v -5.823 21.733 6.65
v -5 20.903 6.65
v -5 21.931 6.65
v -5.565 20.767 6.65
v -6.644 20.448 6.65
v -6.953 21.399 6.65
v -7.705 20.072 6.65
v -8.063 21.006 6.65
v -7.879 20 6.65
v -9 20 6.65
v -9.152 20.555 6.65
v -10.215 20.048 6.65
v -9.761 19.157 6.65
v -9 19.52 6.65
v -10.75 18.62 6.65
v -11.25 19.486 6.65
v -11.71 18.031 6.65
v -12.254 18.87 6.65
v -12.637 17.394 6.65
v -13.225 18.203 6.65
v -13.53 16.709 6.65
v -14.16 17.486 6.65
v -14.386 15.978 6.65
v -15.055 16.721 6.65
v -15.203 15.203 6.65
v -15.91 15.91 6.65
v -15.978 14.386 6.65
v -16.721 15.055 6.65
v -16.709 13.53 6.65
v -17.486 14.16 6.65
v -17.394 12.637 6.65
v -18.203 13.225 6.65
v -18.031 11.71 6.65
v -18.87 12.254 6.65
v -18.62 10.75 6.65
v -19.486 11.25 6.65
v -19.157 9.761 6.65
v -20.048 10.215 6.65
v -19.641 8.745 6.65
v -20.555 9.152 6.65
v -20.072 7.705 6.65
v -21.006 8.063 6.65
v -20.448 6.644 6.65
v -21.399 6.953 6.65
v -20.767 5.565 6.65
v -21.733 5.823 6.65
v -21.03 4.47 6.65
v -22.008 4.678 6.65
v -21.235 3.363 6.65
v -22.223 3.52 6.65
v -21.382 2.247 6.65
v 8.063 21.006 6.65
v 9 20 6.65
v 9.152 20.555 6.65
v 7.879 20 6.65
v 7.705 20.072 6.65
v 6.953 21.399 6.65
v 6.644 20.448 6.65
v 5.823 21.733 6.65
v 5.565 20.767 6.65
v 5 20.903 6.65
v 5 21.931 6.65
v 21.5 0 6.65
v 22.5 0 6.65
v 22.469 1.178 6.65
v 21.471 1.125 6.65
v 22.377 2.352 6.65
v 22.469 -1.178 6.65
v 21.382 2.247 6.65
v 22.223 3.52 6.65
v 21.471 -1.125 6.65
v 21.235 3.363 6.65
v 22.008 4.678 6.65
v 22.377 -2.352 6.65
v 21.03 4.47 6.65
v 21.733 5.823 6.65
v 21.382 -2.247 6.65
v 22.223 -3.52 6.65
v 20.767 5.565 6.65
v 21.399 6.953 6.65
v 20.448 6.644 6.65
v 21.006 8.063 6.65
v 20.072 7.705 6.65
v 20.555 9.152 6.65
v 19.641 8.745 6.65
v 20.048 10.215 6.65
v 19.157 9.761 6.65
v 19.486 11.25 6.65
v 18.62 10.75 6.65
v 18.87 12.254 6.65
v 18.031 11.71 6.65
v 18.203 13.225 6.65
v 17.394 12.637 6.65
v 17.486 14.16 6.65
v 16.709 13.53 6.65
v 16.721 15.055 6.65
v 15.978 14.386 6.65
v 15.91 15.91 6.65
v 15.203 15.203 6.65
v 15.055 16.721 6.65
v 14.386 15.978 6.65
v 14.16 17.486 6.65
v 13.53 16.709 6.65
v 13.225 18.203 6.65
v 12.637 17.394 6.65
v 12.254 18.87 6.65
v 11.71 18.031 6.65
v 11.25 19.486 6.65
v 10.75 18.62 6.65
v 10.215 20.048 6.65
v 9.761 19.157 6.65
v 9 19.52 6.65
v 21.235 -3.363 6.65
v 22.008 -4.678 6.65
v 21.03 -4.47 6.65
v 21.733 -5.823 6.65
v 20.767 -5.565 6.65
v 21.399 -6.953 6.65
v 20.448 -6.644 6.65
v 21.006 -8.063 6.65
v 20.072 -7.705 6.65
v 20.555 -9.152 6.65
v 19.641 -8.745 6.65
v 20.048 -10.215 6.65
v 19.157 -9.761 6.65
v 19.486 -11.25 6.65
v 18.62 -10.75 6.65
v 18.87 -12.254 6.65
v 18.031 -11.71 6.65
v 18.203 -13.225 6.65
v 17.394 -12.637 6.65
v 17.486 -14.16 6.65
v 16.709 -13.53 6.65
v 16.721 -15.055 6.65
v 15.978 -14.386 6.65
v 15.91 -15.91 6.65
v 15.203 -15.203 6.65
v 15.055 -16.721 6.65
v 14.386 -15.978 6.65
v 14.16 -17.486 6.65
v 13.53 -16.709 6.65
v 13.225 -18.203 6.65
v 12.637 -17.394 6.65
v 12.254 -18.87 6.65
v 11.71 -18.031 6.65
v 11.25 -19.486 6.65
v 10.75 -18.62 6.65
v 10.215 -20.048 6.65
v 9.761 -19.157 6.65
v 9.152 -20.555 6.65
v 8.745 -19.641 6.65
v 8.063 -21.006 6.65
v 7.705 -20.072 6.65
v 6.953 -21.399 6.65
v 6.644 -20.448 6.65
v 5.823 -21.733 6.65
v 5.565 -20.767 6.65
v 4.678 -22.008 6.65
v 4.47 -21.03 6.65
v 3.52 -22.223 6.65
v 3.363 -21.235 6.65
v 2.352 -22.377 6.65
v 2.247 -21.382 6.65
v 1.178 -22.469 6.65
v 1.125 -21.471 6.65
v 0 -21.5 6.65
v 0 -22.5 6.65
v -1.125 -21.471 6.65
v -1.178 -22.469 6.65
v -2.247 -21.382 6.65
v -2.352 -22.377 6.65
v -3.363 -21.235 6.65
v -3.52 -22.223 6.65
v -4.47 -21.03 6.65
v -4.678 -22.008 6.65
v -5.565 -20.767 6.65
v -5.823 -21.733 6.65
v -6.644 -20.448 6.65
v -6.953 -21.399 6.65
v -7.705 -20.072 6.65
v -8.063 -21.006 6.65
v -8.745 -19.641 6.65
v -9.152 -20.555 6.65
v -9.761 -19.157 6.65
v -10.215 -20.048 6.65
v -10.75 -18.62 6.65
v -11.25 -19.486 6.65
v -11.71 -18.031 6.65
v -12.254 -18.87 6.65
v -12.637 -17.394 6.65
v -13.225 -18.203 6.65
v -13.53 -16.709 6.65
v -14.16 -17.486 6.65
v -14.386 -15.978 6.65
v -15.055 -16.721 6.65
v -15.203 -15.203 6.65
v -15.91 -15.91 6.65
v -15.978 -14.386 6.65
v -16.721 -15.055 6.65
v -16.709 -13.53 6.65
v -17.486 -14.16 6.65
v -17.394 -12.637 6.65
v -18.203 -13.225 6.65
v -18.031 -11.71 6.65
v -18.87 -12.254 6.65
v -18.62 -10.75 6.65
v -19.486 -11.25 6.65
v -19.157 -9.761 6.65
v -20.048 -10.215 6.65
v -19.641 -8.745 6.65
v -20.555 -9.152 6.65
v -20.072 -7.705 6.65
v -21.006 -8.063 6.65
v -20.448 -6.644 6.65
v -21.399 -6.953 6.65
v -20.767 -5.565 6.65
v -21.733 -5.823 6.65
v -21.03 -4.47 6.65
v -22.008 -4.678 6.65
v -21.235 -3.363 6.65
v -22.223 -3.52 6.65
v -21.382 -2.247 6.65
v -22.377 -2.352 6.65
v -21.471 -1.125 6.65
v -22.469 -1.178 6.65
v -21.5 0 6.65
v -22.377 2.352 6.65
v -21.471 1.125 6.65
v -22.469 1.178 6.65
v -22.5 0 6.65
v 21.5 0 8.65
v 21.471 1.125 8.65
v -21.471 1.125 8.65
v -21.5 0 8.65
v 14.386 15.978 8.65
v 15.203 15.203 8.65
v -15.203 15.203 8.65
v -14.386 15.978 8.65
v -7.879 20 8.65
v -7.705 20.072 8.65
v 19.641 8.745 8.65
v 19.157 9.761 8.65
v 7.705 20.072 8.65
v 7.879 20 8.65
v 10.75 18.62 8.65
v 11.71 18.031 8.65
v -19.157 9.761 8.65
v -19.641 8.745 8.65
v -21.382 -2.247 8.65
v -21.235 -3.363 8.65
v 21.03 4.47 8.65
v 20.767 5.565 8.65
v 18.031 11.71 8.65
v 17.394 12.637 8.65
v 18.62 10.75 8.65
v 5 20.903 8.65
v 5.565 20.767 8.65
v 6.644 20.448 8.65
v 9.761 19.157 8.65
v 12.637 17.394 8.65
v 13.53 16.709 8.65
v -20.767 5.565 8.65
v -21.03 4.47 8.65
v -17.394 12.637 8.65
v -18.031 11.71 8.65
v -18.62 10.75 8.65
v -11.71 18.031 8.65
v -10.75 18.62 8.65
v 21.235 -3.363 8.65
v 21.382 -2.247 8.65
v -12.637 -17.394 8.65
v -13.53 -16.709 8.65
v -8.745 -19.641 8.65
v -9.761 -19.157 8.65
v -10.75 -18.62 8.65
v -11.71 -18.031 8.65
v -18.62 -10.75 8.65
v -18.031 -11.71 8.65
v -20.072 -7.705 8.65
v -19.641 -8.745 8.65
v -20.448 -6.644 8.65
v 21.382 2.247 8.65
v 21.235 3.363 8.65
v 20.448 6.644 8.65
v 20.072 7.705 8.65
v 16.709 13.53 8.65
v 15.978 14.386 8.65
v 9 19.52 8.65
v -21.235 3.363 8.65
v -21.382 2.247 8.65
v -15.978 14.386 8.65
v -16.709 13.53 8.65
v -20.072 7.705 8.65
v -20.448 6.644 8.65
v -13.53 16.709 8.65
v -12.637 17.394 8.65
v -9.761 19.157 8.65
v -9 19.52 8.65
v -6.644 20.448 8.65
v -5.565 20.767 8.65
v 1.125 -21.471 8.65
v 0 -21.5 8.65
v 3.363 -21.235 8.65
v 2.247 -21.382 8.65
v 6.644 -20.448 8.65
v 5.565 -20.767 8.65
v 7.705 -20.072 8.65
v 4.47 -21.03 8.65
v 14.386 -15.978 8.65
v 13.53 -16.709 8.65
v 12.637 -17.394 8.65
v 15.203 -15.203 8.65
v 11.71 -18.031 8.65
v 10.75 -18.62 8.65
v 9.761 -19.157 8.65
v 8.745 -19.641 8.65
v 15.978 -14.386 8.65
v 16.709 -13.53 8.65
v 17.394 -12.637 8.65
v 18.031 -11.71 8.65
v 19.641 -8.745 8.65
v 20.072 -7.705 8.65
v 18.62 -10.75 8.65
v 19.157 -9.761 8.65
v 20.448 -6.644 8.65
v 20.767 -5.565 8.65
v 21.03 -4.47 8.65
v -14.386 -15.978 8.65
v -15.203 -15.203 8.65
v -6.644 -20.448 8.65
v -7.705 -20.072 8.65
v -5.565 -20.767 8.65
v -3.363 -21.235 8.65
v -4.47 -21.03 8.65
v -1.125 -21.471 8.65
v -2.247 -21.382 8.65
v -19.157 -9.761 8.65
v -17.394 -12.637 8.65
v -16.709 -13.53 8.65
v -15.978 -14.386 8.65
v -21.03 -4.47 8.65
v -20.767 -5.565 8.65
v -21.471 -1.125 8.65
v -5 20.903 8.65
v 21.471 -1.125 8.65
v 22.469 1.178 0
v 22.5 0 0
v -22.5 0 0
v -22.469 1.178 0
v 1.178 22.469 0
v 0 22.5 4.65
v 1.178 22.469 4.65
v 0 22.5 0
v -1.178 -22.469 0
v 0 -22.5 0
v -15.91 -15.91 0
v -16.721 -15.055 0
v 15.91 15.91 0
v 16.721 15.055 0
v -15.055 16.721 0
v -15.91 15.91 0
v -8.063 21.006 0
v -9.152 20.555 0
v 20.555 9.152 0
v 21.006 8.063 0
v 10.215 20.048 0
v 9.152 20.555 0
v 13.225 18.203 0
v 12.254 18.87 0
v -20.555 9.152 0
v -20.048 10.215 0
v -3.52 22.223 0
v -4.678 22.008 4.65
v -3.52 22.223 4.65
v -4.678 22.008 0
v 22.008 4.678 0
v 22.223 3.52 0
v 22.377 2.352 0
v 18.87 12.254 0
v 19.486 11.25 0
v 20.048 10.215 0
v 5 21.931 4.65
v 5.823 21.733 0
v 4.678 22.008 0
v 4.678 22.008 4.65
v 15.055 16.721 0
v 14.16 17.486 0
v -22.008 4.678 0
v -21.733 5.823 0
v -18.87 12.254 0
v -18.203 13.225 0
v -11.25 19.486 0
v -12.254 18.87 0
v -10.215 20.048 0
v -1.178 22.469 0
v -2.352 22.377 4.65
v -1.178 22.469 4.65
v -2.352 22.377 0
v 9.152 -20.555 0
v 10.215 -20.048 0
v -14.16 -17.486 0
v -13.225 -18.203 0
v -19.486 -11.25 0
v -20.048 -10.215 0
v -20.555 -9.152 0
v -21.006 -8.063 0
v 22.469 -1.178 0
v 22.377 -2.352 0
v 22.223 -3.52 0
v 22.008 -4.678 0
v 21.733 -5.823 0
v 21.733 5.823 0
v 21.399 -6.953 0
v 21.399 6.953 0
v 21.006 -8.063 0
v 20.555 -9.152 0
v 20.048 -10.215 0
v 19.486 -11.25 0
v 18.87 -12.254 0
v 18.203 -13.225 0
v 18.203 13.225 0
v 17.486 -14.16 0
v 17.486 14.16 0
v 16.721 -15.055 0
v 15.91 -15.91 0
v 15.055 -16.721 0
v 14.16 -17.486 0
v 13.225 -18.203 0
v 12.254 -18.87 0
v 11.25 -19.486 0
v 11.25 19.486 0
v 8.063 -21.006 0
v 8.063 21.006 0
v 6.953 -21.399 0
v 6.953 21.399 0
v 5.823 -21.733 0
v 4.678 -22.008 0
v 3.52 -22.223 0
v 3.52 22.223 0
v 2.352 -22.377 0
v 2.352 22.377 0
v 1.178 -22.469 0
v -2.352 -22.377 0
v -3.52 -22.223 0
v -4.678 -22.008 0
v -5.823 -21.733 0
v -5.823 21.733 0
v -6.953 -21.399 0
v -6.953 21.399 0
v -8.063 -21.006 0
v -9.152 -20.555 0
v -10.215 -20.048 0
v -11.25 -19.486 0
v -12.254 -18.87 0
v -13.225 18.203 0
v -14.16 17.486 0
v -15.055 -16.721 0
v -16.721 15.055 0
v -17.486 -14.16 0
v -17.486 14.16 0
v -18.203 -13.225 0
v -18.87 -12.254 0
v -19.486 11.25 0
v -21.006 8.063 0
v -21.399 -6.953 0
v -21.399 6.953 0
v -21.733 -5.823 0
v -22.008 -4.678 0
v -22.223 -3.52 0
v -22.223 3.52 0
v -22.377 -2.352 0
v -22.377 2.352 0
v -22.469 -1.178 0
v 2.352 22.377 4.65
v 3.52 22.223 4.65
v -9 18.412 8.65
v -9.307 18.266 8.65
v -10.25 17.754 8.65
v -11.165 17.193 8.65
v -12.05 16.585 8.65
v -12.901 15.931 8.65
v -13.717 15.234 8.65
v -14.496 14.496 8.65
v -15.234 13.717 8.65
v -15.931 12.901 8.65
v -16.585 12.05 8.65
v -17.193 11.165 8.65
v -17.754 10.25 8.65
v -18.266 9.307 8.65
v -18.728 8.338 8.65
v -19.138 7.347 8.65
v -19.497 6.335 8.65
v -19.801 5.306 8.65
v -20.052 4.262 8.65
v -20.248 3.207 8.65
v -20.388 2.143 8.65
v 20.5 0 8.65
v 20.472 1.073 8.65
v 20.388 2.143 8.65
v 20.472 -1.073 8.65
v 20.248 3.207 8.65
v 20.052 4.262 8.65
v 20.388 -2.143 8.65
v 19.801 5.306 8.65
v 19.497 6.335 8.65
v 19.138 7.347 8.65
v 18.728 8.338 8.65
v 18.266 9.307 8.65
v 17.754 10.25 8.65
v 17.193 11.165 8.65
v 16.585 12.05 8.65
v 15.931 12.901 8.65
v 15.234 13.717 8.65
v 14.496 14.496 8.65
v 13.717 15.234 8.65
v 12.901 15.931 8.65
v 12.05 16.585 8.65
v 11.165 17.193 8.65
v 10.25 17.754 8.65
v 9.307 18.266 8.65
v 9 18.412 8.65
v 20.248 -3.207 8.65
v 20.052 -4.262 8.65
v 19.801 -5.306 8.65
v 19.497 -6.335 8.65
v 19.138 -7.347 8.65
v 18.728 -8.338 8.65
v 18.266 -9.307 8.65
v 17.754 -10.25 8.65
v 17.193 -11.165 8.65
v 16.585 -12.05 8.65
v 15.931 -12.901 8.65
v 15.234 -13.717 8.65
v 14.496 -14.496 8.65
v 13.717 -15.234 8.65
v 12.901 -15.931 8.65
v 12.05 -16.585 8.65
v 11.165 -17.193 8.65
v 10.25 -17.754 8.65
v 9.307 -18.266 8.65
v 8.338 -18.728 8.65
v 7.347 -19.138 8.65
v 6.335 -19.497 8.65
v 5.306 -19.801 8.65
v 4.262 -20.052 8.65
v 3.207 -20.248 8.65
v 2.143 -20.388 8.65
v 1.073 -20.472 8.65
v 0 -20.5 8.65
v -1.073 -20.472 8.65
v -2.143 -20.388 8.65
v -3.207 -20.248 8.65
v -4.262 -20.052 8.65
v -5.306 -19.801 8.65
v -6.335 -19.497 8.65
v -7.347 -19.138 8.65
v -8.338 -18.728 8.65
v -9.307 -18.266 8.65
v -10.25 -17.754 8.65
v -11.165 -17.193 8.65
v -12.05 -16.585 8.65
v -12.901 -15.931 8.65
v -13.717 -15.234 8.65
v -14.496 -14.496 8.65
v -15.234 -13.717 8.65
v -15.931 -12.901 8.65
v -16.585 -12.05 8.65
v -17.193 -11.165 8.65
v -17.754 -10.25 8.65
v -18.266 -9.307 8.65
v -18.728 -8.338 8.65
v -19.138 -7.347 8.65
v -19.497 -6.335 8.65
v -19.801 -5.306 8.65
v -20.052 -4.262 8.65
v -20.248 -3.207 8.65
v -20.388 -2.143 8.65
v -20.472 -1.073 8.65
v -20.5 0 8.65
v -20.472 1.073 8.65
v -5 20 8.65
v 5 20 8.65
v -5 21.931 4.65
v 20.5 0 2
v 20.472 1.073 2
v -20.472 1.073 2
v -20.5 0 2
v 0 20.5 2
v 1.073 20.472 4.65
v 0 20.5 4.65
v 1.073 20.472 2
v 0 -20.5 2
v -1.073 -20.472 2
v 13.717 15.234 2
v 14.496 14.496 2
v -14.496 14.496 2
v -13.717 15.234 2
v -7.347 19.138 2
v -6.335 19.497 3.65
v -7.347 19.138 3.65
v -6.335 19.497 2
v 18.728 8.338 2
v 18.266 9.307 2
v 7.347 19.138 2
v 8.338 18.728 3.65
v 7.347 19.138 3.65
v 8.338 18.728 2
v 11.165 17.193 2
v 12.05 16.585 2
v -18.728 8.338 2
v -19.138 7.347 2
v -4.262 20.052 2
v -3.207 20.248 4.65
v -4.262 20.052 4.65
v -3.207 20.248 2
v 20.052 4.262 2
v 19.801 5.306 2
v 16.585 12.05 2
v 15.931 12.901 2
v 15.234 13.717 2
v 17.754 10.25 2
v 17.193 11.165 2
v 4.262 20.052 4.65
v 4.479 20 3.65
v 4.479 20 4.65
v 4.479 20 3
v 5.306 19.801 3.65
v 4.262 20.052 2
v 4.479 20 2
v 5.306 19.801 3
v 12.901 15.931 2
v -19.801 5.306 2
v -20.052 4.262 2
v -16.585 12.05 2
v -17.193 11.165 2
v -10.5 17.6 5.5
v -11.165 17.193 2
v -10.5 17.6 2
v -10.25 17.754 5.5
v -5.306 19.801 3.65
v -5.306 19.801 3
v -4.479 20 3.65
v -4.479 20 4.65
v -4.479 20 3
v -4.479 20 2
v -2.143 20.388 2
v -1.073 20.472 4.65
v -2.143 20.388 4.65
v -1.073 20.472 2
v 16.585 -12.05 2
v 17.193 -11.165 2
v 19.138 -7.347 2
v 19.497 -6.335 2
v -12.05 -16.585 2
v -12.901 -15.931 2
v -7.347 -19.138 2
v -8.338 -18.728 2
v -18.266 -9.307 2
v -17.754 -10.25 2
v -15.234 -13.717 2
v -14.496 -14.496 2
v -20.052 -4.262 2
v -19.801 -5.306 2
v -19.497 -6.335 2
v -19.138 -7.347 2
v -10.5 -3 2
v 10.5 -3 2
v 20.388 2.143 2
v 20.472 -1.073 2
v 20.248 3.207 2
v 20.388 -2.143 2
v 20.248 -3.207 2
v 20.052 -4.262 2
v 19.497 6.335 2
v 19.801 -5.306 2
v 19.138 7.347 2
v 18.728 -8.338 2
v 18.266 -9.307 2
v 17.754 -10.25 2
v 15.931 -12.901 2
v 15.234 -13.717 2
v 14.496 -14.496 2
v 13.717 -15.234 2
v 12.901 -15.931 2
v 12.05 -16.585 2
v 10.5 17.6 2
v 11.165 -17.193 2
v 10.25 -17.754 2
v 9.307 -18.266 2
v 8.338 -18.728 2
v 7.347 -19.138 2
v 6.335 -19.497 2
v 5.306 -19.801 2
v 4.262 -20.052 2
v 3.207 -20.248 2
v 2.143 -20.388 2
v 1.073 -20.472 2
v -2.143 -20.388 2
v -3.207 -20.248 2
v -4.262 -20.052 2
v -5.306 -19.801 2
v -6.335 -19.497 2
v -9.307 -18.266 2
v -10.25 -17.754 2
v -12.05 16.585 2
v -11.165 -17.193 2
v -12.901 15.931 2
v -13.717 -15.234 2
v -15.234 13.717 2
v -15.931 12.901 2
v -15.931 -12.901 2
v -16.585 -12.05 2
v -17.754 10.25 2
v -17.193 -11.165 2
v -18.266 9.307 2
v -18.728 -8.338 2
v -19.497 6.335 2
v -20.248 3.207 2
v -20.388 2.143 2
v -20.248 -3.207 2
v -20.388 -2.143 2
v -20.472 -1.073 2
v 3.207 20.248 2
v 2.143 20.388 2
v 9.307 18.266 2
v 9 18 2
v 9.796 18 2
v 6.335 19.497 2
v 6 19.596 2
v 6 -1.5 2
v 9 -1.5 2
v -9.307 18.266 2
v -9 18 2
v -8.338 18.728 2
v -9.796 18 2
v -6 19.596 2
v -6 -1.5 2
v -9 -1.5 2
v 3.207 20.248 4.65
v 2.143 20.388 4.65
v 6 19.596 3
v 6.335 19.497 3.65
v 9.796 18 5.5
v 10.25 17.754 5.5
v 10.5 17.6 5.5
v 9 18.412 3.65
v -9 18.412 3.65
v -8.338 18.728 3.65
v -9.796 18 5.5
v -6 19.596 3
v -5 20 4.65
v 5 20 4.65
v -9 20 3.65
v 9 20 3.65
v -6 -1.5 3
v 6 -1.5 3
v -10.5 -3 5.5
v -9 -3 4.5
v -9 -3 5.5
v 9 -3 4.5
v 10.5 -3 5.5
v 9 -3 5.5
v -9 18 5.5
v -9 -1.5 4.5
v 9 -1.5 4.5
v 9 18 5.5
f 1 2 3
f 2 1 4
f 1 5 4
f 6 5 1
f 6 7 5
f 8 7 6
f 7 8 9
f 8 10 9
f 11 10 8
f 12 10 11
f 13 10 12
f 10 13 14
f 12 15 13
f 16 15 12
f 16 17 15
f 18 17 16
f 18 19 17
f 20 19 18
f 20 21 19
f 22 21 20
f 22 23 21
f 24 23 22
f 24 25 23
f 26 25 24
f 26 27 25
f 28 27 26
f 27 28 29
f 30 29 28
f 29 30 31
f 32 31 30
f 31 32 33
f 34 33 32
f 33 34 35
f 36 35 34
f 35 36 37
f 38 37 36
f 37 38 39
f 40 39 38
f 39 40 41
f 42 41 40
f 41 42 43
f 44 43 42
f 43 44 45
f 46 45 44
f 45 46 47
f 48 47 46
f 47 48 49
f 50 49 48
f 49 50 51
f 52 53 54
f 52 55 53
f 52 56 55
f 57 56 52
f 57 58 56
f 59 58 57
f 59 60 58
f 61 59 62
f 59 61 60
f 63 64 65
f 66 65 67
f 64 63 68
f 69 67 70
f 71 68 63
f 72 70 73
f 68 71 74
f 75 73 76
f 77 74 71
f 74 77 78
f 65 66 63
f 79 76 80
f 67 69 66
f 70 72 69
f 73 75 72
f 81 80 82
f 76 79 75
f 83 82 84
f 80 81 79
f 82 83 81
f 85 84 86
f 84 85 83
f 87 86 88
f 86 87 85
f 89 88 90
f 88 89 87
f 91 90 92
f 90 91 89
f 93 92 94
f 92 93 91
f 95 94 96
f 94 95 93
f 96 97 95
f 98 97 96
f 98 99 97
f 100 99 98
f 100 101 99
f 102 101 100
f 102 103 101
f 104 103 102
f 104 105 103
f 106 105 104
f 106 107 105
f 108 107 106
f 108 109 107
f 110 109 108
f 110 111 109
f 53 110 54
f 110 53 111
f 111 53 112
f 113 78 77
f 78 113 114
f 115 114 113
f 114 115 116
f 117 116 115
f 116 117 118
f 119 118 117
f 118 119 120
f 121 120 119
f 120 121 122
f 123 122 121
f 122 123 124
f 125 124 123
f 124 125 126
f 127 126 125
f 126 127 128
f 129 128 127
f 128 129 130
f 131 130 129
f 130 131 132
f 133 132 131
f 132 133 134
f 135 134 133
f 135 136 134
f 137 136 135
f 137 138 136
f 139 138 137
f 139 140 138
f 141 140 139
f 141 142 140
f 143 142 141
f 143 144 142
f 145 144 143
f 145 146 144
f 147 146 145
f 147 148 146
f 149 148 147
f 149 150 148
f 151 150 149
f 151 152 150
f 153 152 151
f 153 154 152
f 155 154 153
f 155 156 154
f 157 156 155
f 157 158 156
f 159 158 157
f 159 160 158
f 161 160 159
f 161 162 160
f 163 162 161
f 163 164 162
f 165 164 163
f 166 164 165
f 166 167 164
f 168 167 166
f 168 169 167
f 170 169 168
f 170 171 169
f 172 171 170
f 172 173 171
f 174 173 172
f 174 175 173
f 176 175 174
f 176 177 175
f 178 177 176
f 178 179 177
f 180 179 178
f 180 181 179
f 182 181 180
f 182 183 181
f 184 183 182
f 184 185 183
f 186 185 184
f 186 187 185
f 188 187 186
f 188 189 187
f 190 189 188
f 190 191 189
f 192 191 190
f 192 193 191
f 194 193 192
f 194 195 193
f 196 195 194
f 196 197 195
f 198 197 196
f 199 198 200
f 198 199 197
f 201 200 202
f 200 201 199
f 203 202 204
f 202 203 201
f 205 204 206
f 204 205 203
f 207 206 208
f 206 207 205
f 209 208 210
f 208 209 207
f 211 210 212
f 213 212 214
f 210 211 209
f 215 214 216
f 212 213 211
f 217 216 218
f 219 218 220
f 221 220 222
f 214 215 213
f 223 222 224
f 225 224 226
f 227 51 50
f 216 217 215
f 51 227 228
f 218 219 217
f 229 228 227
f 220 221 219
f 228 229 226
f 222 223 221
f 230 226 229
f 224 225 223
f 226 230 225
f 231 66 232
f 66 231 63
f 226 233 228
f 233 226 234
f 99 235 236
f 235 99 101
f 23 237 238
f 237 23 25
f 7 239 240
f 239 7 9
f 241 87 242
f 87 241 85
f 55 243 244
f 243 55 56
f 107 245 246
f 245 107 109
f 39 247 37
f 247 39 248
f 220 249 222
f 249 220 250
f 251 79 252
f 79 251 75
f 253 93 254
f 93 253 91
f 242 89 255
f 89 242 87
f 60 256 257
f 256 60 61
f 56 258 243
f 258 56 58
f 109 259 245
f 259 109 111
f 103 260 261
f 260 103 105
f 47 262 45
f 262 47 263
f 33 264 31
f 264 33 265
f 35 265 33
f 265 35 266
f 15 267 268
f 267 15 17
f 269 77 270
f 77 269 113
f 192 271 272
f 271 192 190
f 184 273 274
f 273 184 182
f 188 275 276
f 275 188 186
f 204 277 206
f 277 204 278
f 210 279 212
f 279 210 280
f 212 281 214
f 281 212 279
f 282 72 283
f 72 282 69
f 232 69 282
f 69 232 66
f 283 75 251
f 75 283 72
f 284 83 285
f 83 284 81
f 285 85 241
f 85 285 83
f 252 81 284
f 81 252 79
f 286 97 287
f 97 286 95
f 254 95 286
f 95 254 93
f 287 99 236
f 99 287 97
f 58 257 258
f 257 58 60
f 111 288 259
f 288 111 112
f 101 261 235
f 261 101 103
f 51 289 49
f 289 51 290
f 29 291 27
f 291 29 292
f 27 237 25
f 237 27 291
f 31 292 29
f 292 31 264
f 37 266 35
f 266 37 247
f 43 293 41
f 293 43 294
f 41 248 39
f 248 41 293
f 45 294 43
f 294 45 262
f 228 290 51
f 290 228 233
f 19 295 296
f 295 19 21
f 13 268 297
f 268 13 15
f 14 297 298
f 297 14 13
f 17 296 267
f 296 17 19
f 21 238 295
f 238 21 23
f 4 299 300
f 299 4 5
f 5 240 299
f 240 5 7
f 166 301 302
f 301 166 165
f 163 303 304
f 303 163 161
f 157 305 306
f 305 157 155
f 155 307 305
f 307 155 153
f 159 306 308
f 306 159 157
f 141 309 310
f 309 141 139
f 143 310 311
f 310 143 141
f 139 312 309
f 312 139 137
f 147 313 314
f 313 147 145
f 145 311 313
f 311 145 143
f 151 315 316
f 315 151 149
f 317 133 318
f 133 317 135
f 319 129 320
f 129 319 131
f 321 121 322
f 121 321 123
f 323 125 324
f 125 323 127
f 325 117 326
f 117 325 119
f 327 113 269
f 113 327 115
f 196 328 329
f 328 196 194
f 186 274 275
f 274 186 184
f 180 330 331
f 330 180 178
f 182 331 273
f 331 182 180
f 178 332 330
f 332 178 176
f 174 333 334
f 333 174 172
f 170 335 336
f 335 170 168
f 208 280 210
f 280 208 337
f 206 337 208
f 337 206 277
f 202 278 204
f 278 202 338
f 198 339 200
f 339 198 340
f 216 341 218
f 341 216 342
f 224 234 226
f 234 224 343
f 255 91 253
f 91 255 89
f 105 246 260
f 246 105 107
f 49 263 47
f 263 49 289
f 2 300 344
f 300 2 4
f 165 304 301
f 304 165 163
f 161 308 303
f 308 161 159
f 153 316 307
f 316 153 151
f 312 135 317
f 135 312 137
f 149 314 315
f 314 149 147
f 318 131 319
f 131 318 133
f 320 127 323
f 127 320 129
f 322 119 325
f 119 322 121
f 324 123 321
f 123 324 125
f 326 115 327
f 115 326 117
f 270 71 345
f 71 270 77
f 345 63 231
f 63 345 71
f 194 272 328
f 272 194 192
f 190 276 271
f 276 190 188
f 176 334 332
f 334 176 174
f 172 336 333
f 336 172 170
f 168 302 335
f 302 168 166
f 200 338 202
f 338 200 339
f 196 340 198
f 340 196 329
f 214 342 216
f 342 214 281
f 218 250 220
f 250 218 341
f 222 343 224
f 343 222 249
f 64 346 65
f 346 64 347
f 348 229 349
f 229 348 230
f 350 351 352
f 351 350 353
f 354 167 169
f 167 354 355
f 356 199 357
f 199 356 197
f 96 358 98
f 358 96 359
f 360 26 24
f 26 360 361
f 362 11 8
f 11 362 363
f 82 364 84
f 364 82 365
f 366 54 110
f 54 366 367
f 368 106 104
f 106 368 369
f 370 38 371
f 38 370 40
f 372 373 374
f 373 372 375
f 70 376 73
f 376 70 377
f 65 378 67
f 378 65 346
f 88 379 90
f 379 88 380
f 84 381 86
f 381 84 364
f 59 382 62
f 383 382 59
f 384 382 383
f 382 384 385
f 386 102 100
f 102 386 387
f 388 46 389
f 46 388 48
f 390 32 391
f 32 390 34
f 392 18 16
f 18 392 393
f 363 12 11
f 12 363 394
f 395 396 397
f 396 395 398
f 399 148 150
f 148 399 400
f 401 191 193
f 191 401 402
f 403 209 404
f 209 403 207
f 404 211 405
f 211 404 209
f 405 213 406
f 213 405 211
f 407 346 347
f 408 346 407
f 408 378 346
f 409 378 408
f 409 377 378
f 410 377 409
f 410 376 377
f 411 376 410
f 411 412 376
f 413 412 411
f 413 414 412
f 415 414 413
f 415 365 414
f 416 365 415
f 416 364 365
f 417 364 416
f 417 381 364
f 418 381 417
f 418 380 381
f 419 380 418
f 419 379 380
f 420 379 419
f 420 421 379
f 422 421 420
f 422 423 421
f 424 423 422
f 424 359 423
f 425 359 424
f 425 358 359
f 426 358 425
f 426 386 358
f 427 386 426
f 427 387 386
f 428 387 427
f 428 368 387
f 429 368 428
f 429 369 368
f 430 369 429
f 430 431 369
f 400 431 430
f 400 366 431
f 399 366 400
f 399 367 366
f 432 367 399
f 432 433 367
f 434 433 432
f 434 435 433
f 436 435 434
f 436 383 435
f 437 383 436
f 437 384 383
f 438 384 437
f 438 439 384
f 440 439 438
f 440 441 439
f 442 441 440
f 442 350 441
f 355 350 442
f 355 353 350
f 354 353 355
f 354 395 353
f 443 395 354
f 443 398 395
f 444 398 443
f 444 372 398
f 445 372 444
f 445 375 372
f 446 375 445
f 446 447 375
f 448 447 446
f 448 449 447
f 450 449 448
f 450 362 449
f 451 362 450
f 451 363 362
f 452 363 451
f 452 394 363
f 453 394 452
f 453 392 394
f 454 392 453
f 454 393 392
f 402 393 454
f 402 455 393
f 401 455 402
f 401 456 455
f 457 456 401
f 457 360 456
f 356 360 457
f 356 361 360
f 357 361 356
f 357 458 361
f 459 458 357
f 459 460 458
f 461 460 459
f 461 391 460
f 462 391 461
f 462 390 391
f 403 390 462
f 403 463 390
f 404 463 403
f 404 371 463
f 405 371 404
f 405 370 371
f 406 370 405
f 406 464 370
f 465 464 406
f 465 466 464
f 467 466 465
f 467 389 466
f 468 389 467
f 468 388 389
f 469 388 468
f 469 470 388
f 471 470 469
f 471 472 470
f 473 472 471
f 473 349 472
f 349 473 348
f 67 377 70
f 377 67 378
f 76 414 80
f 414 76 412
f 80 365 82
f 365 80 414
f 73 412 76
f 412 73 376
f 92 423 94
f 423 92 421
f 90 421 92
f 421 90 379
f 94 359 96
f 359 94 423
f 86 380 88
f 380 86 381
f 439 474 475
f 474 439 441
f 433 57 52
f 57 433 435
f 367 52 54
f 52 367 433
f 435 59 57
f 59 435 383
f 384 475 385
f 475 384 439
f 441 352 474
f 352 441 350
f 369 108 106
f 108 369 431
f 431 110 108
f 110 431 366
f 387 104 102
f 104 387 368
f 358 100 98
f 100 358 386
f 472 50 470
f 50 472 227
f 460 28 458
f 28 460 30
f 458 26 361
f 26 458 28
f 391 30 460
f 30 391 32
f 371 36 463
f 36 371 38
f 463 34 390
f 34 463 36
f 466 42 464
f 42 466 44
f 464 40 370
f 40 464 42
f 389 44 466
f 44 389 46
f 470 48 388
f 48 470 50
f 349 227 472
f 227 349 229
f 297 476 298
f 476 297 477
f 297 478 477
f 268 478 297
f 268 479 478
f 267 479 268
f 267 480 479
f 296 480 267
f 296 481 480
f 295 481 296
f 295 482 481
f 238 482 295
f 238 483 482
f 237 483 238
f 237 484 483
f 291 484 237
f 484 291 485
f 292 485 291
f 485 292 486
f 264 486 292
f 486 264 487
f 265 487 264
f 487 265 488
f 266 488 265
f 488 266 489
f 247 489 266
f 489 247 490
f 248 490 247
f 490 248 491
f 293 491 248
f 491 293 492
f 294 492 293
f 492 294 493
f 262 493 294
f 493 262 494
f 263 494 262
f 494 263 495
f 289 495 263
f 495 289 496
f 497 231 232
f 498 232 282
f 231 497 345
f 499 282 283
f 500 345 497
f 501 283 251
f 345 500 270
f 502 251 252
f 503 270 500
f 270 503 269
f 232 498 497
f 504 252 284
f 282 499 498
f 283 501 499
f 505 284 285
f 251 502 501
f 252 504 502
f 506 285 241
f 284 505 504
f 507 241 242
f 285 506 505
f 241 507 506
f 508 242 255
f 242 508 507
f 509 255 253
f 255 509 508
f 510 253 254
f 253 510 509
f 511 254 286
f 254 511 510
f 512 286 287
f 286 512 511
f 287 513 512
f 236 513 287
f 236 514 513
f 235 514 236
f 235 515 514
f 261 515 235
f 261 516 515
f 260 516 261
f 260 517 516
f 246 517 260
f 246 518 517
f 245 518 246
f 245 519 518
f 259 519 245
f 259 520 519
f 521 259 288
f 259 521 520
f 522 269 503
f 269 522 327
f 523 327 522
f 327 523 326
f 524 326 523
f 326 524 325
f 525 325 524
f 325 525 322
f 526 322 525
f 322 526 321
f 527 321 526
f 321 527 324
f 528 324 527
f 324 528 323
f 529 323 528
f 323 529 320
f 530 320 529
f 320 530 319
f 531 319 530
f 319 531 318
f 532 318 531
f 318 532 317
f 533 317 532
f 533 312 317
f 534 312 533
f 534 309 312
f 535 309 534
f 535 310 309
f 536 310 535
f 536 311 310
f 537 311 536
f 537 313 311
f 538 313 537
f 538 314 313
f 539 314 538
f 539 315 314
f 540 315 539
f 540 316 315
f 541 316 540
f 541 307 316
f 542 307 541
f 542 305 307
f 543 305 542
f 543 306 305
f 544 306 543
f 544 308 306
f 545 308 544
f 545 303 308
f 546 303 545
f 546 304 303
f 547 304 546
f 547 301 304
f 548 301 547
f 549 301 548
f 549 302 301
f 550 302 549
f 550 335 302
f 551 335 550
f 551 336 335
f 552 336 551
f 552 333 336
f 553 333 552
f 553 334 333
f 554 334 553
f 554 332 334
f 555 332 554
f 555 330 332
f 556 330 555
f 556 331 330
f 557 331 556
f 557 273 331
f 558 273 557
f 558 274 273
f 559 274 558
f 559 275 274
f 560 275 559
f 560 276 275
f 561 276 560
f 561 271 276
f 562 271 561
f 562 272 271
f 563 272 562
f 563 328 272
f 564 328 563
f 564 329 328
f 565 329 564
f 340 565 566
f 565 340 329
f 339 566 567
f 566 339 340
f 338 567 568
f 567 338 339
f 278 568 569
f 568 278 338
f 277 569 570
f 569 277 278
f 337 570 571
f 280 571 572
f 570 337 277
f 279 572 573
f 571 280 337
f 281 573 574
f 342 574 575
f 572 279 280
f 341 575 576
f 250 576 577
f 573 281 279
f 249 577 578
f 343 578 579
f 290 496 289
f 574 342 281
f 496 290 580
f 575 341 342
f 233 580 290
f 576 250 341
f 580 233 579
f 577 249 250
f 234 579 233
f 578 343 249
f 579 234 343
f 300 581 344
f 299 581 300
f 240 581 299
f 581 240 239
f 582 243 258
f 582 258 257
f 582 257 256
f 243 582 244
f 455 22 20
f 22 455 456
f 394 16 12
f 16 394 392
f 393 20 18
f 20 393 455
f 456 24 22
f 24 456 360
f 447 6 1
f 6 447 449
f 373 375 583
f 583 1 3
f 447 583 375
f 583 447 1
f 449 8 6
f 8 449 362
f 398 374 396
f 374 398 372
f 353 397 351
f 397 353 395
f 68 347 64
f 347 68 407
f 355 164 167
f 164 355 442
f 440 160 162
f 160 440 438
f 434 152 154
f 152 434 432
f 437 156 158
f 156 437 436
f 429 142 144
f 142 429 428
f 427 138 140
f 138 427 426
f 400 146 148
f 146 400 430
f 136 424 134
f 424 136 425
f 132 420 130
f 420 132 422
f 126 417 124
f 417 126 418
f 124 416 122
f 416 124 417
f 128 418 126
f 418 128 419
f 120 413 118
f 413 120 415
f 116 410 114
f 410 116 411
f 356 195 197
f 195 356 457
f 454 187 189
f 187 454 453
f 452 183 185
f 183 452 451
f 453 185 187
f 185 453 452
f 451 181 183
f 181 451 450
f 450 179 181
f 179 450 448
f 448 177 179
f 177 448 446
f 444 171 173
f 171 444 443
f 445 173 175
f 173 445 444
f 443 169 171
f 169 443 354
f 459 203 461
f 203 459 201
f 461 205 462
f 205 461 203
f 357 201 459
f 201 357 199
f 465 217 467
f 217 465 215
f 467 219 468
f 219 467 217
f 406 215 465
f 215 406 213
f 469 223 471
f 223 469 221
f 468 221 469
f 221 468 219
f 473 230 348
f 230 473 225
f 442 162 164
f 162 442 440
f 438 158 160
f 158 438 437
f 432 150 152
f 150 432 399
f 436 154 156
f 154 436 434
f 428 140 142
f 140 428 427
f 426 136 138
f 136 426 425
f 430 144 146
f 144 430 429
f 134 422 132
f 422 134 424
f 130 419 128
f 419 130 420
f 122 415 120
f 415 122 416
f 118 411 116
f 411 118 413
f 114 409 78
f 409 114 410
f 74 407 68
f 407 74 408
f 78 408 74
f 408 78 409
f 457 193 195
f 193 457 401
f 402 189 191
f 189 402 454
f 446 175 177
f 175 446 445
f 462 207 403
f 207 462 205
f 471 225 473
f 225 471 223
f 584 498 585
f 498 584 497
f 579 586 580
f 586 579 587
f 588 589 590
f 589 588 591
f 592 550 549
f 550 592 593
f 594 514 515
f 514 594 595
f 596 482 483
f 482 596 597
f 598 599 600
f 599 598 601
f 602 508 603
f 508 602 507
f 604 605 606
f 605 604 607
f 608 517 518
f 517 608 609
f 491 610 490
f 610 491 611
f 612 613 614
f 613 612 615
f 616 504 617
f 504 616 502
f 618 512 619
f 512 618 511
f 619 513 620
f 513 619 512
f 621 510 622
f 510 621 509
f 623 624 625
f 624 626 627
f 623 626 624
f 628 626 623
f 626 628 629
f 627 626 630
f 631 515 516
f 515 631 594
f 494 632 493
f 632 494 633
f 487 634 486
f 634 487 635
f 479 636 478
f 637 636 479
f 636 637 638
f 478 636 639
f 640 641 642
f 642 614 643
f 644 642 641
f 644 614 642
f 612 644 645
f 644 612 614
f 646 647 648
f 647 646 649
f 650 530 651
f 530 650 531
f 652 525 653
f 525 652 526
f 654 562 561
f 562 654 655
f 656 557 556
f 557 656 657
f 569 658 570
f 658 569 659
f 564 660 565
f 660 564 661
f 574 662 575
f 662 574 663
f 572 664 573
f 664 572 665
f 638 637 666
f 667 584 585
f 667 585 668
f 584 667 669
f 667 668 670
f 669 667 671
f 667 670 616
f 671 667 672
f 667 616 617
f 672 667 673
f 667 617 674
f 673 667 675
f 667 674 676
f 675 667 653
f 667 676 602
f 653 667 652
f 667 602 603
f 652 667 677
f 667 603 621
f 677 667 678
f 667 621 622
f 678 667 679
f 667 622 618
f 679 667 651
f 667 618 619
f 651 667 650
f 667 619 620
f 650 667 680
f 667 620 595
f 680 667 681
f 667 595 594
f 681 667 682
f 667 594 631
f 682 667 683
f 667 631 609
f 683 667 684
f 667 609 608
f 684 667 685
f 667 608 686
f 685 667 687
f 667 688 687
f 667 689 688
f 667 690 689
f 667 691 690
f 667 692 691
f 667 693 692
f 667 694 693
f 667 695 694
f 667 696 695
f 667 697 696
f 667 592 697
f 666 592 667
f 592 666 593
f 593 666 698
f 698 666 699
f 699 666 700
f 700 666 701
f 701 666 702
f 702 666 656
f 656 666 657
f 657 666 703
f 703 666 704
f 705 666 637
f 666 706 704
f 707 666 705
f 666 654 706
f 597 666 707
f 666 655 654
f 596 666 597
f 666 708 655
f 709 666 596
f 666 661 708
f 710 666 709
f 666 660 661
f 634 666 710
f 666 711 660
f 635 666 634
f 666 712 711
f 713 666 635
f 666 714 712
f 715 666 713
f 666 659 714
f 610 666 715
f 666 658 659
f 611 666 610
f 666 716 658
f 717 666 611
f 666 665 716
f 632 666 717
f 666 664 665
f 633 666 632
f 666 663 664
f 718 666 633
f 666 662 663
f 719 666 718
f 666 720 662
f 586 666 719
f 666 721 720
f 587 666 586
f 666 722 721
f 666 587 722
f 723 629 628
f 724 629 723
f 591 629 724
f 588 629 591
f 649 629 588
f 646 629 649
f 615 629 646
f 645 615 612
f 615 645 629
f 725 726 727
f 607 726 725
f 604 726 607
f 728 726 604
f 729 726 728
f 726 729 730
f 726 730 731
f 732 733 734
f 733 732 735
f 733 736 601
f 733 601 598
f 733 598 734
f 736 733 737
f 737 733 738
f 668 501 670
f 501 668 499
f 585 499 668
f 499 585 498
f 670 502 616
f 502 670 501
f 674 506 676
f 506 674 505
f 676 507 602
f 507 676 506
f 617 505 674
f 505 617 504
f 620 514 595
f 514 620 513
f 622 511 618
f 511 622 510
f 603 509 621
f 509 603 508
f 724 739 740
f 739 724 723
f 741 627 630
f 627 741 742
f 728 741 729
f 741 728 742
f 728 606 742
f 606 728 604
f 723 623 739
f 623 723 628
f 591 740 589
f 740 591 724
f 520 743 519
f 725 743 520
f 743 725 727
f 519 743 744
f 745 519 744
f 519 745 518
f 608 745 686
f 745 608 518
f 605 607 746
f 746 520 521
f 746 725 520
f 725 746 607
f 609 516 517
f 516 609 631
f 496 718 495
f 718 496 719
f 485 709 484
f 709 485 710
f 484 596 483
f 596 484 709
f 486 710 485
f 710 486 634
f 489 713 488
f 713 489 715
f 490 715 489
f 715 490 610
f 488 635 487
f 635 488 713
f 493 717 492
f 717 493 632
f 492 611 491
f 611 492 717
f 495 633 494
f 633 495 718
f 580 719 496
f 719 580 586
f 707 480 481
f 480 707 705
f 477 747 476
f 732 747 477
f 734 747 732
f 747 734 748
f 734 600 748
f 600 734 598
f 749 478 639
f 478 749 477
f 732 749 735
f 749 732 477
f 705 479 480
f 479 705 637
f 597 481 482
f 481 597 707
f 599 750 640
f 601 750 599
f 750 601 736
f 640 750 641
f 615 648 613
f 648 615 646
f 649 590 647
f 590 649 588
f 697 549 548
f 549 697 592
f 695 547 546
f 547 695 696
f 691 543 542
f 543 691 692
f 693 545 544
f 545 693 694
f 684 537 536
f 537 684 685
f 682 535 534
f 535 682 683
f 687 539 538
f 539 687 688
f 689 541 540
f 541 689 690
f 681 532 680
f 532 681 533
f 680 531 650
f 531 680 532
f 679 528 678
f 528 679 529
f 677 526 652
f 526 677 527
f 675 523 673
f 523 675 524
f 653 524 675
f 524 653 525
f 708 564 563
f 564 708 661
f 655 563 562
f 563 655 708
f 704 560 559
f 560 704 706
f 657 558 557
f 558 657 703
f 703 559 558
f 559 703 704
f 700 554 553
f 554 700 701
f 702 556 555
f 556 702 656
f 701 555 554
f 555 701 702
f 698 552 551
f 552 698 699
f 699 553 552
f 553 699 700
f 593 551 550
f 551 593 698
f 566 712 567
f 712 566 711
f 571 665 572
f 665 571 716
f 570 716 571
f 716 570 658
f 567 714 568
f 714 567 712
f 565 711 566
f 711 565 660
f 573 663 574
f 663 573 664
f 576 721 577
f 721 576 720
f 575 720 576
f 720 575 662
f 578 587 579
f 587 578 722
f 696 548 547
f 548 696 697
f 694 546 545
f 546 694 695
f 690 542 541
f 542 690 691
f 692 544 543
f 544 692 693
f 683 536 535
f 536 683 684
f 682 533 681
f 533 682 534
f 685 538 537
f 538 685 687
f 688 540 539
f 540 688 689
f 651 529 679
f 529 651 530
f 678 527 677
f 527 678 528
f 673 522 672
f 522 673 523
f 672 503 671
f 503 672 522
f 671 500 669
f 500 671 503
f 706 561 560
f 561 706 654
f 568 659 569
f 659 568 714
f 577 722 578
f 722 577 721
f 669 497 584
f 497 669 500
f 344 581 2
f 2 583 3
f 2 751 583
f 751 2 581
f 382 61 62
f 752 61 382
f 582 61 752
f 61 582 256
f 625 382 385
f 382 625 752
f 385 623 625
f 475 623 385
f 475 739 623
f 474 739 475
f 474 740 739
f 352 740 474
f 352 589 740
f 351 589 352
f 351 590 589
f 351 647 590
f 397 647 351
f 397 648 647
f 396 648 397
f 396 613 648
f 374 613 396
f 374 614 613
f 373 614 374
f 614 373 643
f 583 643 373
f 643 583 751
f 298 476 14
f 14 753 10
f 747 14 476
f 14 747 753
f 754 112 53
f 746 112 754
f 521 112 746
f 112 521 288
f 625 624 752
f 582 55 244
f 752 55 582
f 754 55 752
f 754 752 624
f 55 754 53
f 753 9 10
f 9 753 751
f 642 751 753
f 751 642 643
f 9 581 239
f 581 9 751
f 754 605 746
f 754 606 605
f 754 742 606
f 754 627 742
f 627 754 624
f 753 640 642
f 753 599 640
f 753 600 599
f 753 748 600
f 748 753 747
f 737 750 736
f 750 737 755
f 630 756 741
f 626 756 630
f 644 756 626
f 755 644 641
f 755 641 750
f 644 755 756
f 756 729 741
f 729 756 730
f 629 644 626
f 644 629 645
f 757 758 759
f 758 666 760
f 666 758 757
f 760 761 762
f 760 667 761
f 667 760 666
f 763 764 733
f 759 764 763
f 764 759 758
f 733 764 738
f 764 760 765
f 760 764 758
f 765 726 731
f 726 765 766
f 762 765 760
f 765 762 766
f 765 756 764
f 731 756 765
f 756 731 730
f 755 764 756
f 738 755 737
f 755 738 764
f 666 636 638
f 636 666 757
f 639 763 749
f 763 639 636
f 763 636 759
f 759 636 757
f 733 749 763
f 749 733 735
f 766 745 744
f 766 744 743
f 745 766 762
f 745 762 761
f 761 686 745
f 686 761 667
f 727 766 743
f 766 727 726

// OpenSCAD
include <BOSL/constants.scad>
use <BOSL/shapes.scad>
use <BOSL/transforms.scad>
use <BOSL/masks.scad>

fileVersion = "1D";
  
$fn=120; //circle smoothness

main();
qtpy();

module main(){
  difference(){
    color("lime") cylinder(h=8.65, d=45); // main disc object
    color("green") up(2) cylinder(h=10, d=41); // inside cutout
    color("peru") translate([-(10/2), 15, 3+1.65]) cube([10,8,4.0+1]); // USB port
    color("orange") translate([-9, 15, 3.65]) cube([18, 5, 10]); // extra board cutout
    color("red") up(6.65) tube(od=50, id=43, h=5); // snap lip

  }
}  

module qtpy() {
     //riser for QT PY
    color("teal") translate([-(12/2), -3, 1]) cube([12,23,2]);
    //bumper for QT PY
    color("CadetBlue") translate([-(18/2), -3, 1]) cube([18, 1.5, 3.5]); 
    //side bumpers for QT PY
    color("royalblue") translate([-10.5, -3, 1]) cube([1.5, 21, 4.5]);
    color("royalblue") translate([+9, -3, 1]) cube([1.5, 21, 4.5]);
}
